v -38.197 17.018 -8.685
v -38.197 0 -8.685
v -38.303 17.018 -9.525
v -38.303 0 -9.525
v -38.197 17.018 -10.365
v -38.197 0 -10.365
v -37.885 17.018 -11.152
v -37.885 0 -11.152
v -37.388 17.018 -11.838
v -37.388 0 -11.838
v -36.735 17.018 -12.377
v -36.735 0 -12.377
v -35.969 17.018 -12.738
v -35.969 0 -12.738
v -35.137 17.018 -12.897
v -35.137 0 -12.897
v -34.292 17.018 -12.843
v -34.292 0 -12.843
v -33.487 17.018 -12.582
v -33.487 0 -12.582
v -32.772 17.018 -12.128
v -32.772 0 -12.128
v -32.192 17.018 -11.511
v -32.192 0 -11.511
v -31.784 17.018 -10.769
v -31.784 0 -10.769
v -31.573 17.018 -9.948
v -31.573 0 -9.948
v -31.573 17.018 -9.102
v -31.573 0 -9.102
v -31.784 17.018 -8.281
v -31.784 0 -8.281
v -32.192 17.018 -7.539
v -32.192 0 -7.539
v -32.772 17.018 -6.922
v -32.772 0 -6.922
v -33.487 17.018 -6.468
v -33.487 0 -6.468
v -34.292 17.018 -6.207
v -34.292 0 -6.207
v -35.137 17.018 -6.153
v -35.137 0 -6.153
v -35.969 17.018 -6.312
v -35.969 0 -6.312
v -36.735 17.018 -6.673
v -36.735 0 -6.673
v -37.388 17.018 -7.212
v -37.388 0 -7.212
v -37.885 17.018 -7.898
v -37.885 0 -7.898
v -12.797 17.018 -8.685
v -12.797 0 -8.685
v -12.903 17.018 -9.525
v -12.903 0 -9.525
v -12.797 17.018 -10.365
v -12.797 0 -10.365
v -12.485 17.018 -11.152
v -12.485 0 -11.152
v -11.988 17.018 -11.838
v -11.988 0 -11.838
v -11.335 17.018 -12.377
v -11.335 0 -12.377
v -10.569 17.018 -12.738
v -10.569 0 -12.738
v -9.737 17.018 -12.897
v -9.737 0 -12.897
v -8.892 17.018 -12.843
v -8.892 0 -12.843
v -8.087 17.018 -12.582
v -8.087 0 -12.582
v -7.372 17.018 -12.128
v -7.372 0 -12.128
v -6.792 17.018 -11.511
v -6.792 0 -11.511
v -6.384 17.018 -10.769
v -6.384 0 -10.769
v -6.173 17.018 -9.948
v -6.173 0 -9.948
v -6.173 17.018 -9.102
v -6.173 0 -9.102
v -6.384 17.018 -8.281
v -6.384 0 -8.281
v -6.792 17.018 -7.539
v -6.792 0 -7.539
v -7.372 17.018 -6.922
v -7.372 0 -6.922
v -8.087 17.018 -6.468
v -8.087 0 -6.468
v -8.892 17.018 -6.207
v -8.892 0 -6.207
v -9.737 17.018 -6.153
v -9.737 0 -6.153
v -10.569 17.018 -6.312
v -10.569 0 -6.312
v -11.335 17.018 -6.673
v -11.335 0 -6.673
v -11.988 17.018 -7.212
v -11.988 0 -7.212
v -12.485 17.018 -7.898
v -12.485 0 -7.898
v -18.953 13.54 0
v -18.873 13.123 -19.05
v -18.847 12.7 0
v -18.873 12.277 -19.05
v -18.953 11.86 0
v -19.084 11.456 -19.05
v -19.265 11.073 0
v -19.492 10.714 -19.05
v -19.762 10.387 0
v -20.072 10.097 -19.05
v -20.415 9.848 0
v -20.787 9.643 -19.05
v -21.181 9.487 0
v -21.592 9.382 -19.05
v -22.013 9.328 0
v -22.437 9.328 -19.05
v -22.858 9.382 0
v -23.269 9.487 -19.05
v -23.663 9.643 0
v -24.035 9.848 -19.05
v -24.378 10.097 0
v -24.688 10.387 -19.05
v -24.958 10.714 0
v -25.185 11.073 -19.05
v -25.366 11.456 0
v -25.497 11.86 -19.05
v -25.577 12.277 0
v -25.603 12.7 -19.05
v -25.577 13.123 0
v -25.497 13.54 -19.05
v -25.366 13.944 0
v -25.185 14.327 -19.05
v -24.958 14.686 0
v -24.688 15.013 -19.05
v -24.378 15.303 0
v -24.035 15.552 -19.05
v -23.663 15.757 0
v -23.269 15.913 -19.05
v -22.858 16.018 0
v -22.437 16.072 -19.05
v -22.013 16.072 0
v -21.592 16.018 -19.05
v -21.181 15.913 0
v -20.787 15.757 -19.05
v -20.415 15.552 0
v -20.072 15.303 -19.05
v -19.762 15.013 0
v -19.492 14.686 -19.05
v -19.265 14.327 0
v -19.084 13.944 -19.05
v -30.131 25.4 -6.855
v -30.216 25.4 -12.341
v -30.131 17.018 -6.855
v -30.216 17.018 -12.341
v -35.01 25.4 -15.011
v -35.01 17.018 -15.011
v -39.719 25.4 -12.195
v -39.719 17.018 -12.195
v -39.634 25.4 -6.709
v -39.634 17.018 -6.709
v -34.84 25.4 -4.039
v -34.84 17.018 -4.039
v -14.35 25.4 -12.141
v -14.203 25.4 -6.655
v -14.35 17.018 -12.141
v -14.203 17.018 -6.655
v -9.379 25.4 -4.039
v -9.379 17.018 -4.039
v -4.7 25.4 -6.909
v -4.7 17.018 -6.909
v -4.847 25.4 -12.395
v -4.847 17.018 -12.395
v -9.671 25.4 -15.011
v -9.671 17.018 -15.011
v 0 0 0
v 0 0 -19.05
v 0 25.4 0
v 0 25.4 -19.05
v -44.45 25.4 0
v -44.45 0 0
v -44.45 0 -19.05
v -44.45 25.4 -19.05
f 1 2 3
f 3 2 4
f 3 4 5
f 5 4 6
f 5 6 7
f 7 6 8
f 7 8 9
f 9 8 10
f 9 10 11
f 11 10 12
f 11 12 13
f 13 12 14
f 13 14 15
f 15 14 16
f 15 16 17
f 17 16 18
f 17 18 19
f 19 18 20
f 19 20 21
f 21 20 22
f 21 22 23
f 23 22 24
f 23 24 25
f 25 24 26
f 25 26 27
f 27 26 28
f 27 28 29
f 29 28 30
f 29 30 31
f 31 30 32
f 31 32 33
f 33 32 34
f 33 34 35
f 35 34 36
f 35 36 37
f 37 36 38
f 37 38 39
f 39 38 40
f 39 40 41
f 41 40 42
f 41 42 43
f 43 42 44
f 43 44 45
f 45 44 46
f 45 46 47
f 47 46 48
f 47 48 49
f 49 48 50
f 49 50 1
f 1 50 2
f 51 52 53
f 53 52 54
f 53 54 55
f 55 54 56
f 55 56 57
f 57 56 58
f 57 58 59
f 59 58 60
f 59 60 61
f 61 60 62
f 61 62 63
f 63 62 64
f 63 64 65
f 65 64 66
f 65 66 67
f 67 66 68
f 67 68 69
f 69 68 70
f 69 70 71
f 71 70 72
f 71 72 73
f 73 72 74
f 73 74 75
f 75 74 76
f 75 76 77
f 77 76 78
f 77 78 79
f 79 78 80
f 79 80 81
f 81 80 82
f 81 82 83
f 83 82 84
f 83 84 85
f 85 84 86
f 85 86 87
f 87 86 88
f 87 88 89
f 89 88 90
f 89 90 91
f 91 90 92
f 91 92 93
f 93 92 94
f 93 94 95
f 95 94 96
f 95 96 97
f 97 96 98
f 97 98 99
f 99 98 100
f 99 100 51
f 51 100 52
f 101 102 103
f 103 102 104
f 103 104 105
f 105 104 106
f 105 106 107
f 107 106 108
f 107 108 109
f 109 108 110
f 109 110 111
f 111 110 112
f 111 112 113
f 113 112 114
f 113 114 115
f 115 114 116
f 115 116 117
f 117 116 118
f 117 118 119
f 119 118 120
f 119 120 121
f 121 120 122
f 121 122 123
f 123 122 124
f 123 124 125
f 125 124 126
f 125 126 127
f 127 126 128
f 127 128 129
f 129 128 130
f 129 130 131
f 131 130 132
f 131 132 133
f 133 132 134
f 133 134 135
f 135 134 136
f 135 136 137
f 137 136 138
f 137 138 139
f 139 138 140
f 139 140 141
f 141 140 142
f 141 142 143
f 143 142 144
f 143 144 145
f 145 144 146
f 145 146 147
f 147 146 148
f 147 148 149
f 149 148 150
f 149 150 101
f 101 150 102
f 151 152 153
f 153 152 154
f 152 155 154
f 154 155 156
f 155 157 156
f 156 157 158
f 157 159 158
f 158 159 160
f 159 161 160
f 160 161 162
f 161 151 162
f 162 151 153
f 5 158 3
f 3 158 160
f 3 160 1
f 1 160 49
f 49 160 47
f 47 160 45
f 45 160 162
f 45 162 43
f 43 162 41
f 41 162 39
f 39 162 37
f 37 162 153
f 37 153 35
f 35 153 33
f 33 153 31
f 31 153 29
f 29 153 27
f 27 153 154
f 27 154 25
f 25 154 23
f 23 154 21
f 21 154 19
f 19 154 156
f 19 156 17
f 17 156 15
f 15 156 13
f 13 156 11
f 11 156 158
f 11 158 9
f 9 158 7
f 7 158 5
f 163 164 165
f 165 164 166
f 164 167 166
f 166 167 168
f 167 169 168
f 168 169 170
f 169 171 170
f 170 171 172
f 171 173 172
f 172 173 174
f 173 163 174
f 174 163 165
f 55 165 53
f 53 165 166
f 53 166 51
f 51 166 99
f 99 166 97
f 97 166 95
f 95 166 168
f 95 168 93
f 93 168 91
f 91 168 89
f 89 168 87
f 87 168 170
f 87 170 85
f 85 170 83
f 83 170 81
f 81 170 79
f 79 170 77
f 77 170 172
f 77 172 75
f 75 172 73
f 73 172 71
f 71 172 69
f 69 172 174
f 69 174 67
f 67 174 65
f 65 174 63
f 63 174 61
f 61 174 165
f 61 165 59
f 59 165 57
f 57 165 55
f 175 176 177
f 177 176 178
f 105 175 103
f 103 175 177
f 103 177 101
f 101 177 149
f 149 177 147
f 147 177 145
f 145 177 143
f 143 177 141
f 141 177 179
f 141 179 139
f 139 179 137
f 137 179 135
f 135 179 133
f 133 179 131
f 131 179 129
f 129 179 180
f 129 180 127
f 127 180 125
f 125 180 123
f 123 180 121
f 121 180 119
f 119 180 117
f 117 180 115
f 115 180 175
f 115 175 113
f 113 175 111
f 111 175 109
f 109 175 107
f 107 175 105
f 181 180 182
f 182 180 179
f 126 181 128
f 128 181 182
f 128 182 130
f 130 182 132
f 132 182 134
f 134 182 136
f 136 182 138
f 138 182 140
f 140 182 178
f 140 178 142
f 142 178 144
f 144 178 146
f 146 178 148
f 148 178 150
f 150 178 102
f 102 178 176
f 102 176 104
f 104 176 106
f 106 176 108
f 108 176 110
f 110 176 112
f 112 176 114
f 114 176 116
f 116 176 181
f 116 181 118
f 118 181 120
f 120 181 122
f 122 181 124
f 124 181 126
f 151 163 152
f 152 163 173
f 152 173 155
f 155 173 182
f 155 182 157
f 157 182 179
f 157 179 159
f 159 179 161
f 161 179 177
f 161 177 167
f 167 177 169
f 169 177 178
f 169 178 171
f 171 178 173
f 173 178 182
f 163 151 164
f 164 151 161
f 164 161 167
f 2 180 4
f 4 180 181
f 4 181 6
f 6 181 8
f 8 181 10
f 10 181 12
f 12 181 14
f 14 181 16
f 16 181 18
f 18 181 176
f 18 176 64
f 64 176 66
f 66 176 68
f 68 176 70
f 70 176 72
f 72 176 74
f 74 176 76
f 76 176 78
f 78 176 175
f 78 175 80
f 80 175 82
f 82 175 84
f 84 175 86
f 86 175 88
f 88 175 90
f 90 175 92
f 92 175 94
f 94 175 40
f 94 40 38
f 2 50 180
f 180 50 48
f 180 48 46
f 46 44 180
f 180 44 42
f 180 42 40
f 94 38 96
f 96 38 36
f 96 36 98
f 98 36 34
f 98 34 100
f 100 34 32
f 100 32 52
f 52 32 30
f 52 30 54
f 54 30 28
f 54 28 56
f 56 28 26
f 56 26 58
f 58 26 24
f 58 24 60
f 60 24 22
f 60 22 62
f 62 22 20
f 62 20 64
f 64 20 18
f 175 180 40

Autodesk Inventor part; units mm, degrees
ref_plane "YZ Plane" through (0, 0, 0) normal (1, 0, 0) x (0, 1, 0)
ref_plane "XZ Plane" through (0, 0, 0) normal (0, 1, 0) x (-1, 0, 0)
ref_plane "XY Plane" through (0, 0, 0) normal (0, 0, 1) x (1, 0, 0)
sketch "Sketch2" plane through (0, 0, 0) normal (0, 1, 0) x (-1, 0, 0)
  line L0 (0, 0) -> (44.45, 0)
  line L1 (44.45, 0) -> (44.45, -19.05)
  line L2 (44.45, -19.05) -> (0, -19.05)
  line L3 (0, -19.05) -> (0, 0)
  dimension "d2" = 19.05
  dimension "d3" = 44.45
extrude "Extrusion2" add sketch "Sketch2" along normal blind 25.4
sketch "Sketch6" plane through (0, 25.4, 0) normal (0, 1, 0) x (1, 0, 0)
  line L0 (-44.45, 19.05) -> (-44.45, 0) projected
  line L1 (-44.45, 9.525) -> (0, 9.525)
  line L2 (0, 0) -> (0, 19.05) projected
  line L3 (-35.0096, 15.0114) -> (-30.216, 12.3415)
  line L4 (-30.216, 12.3415) -> (-30.1313, 6.8551)
  line L5 (-30.1313, 6.8551) -> (-34.8404, 4.0386)
  line L6 (-34.8404, 4.0386) -> (-39.634, 6.7085)
  line L7 (-39.634, 6.7085) -> (-39.7187, 12.1949)
  line L8 (-39.7187, 12.1949) -> (-35.0096, 15.0114)
  line L9 (-14.3495, 12.1415) -> (-9.6714, 15.0114)
  line L10 (-9.6714, 15.0114) -> (-4.8468, 12.3949)
  line L11 (-4.8468, 12.3949) -> (-4.7005, 6.9085)
  line L12 (-4.7005, 6.9085) -> (-9.3786, 4.0386)
  line L13 (-9.3786, 4.0386) -> (-14.2032, 6.6551)
  line L14 (-14.2032, 6.6551) -> (-14.3495, 12.1415)
  point P0 (-34.925, 9.525)
  point P1 (-9.525, 9.525)
  dimension "d17" = 44.45
  dimension "d18" = 10.9728
  dimension "d19" = 10.9728
  dimension "d20" = 9.525
  dimension "d21" = 9.525
extrude "Extrusion3" cut sketch "Sketch6" against normal blind 8.382
sketch "Sketch17" plane through (0, 0, -19.05) normal (0, 0, -1) x (-1, 0, 0)
  circle A0 centre (22.225, 12.7) radius 3.3782
  line L0 (44.45, 0) -> (44.45, 25.4) projected
  line L1 (0, 0) -> (44.45, 0) projected
  dimension "d58" = 22.225
  dimension "d59" = 6.7564
  dimension "d68" = 12.7
extrude "Extrusion11" cut sketch "Sketch17" against normal blind 25.4
sketch "Sketch19" plane through (0, 25.4, 0) normal (0, 1, 0) x (1, 0, 0)
  point P0 (0, 0)
sketch "Sketch20" plane through (0, 25.4, 0) normal (0, 1, 0) x (1, 0, 0)
  line L0 (-4.7005, 6.9085) -> (-9.3786, 4.0386) projected
  line L1 (-9.3786, 4.0386) -> (-14.2032, 6.6551) projected
  line L2 (-14.2032, 6.6551) -> (-14.3495, 12.1415) projected
  line L3 (-14.3495, 12.1415) -> (-9.6714, 15.0114) projected
  line L4 (-9.6714, 15.0114) -> (-4.8468, 12.3949) projected
  line L5 (-4.8468, 12.3949) -> (-4.7005, 6.9085) projected
  line L6 (-14.3495, 12.1415) -> (-9.6714, 15.0114) projected
  line L7 (-14.2032, 6.6551) -> (-14.3495, 12.1415) projected
  line L8 (-9.3786, 4.0386) -> (-14.2032, 6.6551) projected
  line L9 (-4.7005, 6.9085) -> (-9.3786, 4.0386) projected
  line L10 (-4.8468, 12.3949) -> (-4.7005, 6.9085) projected
  line L11 (-9.6714, 15.0114) -> (-4.8468, 12.3949) projected
  line L12 (-30.1313, 6.8551) -> (-34.8404, 4.0386) projected
  line L13 (-30.216, 12.3415) -> (-30.1313, 6.8551) projected
  line L14 (-35.0096, 15.0114) -> (-30.216, 12.3415) projected
  line L15 (-39.7187, 12.1949) -> (-35.0096, 15.0114) projected
  line L16 (-39.634, 6.7085) -> (-39.7187, 12.1949) projected
  line L17 (-34.8404, 4.0386) -> (-39.634, 6.7085) projected
  line L18 (-4.7005, 6.9085) -> (-9.3786, 4.0386) projected
  line L19 (-9.3786, 4.0386) -> (-9.6714, 15.0114)
  line L20 (-4.8468, 12.3949) -> (-4.7005, 6.9085) projected
  line L21 (-4.7736, 9.6517) -> (-14.2764, 9.3983)
  line L22 (-14.2032, 6.6551) -> (-14.3495, 12.1415) projected
  circle A0 centre (-9.525, 9.525) radius 3.3782
  line L23 (-34.8404, 4.0386) -> (-35.0096, 15.0114)
  line L24 (-39.634, 6.7085) -> (-39.7187, 12.1949) projected
  line L25 (-39.6764, 9.4517) -> (-30.1736, 9.5983)
  line L26 (-30.216, 12.3415) -> (-30.1313, 6.8551) projected
  circle A1 centre (-34.925, 9.525) radius 3.3782
  point P0 (0, 0)
  dimension "d64" = 6.7564
  dimension "d65" = 6.7564
extrude "Extrusion12" cut sketch "Sketch20" against normal through all contours A0 L21 L19 | L19 L21 A0 | L21 L19 A0 | L21 A0 L19 | A1 L25 L23 | L23 L25 A1 | L25 L23 A1 | L25 A1 L23
sketch "Sketch21" plane through (0, 25.4, 0) normal (0, 1, 0) x (1, 0, 0)
  point P0 (0, 0)
properties part number "bumper piece 1"
